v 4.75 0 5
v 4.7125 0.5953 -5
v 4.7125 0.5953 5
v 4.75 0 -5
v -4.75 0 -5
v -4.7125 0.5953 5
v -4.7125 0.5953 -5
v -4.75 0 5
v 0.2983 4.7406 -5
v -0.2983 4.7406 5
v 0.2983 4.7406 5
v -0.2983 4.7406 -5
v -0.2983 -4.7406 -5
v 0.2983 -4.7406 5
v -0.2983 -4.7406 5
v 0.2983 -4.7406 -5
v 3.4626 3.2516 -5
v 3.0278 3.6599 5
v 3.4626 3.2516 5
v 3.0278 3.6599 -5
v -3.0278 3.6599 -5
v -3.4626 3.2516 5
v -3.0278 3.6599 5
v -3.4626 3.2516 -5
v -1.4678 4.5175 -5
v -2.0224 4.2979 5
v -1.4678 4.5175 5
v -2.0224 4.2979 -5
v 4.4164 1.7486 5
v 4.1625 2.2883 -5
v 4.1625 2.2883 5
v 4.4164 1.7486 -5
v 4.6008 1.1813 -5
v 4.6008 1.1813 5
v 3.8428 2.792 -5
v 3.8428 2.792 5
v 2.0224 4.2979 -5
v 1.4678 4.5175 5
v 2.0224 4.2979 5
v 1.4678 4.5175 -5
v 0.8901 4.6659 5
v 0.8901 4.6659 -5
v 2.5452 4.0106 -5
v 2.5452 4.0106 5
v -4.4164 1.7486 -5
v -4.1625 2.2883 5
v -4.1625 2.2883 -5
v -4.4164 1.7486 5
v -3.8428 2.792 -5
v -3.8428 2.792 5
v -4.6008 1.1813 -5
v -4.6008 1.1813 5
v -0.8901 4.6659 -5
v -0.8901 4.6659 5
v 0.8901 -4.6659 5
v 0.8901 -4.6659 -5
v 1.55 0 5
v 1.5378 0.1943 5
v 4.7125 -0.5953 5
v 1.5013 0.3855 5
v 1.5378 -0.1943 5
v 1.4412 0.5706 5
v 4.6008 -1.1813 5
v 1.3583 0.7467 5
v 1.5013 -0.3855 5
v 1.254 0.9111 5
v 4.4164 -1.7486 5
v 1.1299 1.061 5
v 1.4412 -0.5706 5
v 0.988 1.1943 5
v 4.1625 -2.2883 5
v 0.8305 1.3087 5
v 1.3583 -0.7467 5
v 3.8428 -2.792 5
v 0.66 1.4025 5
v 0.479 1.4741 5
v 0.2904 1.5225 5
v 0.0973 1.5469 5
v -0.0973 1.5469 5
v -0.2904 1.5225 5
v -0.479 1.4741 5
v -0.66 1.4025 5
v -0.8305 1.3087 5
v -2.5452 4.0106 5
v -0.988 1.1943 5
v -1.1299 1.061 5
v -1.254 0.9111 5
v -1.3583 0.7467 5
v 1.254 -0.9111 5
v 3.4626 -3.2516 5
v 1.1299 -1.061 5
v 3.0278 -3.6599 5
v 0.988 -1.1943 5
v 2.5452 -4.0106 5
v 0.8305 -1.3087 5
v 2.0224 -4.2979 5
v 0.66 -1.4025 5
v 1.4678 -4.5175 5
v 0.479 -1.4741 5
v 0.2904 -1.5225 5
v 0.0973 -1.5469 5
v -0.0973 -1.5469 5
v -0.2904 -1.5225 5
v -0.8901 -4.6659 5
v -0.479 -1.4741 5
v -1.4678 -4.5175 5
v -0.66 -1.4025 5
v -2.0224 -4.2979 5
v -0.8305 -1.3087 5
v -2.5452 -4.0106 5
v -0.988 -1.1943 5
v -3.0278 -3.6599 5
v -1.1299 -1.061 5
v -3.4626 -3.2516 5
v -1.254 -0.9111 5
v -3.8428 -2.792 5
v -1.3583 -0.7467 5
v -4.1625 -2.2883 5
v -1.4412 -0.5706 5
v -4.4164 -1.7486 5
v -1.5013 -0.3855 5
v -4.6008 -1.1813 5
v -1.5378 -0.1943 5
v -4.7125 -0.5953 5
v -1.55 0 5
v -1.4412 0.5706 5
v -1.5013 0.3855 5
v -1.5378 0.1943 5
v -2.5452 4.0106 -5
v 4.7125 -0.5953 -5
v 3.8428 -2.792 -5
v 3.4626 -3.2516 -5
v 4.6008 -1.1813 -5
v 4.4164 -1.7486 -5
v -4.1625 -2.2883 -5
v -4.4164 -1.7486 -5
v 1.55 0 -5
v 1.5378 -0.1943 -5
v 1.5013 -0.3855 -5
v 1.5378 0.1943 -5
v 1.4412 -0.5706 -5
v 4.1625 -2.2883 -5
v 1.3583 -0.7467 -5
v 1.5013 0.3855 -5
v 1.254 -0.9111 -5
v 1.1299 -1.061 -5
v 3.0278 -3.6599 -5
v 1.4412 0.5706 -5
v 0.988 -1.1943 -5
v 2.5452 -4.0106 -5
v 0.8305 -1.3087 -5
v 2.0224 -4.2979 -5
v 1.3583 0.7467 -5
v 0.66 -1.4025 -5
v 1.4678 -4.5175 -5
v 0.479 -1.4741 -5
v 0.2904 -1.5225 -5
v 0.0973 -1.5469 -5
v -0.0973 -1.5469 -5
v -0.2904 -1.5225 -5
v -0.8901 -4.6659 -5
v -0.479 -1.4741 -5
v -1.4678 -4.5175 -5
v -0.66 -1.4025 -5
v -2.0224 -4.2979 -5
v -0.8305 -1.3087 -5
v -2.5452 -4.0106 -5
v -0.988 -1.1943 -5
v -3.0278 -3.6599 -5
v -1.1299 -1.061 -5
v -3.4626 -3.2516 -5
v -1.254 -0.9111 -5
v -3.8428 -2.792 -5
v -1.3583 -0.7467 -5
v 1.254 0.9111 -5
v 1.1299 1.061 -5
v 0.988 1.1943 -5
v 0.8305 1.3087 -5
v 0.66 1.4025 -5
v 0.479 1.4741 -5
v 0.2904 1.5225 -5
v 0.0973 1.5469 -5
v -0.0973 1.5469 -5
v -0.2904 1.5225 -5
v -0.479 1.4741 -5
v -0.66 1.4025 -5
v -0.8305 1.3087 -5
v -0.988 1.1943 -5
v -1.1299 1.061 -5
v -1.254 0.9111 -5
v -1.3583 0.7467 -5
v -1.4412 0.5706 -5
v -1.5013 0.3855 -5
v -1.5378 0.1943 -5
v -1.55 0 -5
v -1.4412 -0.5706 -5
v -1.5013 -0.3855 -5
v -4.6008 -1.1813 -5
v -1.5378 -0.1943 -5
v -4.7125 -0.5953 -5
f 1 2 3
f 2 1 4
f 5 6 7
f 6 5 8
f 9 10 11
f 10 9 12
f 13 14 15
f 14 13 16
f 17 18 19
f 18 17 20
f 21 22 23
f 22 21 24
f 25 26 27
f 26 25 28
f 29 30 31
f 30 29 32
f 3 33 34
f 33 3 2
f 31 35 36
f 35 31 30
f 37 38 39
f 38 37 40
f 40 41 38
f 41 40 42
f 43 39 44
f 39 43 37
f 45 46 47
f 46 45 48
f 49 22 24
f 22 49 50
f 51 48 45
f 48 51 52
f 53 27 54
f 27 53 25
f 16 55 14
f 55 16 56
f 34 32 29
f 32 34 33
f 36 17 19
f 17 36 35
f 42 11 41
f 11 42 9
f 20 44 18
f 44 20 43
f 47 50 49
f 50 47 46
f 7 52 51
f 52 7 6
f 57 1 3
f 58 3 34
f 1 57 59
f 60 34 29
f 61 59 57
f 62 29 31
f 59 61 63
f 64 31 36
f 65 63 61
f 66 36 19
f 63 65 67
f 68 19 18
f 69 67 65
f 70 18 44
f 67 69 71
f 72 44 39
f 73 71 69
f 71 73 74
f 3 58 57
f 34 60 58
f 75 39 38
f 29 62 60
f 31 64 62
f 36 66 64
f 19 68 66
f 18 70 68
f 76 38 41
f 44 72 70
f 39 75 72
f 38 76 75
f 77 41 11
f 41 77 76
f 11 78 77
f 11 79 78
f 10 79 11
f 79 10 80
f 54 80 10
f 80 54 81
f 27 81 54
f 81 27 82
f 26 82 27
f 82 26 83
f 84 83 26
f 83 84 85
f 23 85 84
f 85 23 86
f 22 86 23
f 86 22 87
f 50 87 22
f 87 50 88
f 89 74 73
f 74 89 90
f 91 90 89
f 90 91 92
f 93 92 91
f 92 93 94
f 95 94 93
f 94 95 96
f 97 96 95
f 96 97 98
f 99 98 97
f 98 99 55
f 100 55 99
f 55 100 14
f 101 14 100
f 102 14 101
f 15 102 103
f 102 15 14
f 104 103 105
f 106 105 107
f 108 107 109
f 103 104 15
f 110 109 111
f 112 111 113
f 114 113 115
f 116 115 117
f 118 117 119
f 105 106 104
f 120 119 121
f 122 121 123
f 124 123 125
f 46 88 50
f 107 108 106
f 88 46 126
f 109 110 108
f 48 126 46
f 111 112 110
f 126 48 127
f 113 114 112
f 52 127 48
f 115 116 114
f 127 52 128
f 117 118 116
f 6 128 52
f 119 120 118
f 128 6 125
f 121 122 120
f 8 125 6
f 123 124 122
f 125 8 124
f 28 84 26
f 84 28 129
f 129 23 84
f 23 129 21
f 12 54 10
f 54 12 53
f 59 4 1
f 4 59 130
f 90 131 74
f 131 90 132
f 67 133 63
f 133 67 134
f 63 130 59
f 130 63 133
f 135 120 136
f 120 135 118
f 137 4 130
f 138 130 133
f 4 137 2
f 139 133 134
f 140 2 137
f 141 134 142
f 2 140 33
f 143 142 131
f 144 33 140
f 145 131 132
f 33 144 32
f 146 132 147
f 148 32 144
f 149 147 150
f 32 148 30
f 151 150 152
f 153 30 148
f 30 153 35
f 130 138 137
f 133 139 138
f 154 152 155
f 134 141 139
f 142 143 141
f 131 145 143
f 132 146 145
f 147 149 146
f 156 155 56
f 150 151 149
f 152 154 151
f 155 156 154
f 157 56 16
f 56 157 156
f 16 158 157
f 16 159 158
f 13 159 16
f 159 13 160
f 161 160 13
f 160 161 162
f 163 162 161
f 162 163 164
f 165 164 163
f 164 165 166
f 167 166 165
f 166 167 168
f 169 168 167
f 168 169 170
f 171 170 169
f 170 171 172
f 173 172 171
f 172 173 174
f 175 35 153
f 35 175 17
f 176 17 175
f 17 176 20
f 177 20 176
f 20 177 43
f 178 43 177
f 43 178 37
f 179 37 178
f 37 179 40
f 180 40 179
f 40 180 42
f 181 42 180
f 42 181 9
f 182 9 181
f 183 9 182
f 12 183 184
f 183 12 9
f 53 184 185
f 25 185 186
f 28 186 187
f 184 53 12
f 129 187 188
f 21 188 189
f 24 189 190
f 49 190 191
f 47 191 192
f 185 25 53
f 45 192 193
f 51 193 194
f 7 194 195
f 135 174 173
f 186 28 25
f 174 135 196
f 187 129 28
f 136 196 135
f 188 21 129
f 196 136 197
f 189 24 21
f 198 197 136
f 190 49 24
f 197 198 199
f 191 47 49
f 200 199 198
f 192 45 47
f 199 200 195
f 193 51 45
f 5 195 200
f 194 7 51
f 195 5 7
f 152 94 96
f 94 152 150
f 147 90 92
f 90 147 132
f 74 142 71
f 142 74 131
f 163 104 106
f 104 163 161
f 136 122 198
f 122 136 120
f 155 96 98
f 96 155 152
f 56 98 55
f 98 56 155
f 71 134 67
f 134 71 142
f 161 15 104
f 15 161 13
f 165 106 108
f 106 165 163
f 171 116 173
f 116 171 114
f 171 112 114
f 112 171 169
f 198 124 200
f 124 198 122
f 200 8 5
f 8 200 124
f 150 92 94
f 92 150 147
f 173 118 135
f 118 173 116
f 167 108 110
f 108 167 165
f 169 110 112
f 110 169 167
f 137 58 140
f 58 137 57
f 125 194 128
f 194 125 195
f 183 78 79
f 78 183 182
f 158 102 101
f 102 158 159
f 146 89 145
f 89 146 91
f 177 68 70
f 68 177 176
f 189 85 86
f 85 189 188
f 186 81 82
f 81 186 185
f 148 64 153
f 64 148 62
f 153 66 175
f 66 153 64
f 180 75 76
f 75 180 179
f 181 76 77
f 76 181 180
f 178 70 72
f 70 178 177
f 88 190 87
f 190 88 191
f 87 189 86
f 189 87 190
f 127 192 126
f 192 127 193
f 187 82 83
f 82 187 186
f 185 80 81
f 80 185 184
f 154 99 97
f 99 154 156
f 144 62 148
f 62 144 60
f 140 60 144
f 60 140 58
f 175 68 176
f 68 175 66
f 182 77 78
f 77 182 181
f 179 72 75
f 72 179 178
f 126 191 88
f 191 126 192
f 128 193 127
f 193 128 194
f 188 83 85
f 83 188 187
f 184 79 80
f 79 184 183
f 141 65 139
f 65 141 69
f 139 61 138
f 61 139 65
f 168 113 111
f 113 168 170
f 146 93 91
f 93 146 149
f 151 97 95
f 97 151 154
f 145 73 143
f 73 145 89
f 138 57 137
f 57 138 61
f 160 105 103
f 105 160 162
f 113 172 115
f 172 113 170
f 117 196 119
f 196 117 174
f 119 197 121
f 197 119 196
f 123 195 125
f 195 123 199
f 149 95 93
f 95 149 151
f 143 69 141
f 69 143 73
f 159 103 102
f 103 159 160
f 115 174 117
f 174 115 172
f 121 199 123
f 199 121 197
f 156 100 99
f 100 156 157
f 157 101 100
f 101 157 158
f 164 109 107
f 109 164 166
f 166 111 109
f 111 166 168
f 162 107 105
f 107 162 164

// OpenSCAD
$fn = 50;


difference() {
	union() {
		translate(v = [0, 0, -5.0000000000]) {
			cylinder(h = 10, r = 4.7500000000);
		}
	}
	union() {
		translate(v = [0, 0, -100.0000000000]) {
			cylinder(h = 200, r = 1.5500000000);
		}
	}
}
